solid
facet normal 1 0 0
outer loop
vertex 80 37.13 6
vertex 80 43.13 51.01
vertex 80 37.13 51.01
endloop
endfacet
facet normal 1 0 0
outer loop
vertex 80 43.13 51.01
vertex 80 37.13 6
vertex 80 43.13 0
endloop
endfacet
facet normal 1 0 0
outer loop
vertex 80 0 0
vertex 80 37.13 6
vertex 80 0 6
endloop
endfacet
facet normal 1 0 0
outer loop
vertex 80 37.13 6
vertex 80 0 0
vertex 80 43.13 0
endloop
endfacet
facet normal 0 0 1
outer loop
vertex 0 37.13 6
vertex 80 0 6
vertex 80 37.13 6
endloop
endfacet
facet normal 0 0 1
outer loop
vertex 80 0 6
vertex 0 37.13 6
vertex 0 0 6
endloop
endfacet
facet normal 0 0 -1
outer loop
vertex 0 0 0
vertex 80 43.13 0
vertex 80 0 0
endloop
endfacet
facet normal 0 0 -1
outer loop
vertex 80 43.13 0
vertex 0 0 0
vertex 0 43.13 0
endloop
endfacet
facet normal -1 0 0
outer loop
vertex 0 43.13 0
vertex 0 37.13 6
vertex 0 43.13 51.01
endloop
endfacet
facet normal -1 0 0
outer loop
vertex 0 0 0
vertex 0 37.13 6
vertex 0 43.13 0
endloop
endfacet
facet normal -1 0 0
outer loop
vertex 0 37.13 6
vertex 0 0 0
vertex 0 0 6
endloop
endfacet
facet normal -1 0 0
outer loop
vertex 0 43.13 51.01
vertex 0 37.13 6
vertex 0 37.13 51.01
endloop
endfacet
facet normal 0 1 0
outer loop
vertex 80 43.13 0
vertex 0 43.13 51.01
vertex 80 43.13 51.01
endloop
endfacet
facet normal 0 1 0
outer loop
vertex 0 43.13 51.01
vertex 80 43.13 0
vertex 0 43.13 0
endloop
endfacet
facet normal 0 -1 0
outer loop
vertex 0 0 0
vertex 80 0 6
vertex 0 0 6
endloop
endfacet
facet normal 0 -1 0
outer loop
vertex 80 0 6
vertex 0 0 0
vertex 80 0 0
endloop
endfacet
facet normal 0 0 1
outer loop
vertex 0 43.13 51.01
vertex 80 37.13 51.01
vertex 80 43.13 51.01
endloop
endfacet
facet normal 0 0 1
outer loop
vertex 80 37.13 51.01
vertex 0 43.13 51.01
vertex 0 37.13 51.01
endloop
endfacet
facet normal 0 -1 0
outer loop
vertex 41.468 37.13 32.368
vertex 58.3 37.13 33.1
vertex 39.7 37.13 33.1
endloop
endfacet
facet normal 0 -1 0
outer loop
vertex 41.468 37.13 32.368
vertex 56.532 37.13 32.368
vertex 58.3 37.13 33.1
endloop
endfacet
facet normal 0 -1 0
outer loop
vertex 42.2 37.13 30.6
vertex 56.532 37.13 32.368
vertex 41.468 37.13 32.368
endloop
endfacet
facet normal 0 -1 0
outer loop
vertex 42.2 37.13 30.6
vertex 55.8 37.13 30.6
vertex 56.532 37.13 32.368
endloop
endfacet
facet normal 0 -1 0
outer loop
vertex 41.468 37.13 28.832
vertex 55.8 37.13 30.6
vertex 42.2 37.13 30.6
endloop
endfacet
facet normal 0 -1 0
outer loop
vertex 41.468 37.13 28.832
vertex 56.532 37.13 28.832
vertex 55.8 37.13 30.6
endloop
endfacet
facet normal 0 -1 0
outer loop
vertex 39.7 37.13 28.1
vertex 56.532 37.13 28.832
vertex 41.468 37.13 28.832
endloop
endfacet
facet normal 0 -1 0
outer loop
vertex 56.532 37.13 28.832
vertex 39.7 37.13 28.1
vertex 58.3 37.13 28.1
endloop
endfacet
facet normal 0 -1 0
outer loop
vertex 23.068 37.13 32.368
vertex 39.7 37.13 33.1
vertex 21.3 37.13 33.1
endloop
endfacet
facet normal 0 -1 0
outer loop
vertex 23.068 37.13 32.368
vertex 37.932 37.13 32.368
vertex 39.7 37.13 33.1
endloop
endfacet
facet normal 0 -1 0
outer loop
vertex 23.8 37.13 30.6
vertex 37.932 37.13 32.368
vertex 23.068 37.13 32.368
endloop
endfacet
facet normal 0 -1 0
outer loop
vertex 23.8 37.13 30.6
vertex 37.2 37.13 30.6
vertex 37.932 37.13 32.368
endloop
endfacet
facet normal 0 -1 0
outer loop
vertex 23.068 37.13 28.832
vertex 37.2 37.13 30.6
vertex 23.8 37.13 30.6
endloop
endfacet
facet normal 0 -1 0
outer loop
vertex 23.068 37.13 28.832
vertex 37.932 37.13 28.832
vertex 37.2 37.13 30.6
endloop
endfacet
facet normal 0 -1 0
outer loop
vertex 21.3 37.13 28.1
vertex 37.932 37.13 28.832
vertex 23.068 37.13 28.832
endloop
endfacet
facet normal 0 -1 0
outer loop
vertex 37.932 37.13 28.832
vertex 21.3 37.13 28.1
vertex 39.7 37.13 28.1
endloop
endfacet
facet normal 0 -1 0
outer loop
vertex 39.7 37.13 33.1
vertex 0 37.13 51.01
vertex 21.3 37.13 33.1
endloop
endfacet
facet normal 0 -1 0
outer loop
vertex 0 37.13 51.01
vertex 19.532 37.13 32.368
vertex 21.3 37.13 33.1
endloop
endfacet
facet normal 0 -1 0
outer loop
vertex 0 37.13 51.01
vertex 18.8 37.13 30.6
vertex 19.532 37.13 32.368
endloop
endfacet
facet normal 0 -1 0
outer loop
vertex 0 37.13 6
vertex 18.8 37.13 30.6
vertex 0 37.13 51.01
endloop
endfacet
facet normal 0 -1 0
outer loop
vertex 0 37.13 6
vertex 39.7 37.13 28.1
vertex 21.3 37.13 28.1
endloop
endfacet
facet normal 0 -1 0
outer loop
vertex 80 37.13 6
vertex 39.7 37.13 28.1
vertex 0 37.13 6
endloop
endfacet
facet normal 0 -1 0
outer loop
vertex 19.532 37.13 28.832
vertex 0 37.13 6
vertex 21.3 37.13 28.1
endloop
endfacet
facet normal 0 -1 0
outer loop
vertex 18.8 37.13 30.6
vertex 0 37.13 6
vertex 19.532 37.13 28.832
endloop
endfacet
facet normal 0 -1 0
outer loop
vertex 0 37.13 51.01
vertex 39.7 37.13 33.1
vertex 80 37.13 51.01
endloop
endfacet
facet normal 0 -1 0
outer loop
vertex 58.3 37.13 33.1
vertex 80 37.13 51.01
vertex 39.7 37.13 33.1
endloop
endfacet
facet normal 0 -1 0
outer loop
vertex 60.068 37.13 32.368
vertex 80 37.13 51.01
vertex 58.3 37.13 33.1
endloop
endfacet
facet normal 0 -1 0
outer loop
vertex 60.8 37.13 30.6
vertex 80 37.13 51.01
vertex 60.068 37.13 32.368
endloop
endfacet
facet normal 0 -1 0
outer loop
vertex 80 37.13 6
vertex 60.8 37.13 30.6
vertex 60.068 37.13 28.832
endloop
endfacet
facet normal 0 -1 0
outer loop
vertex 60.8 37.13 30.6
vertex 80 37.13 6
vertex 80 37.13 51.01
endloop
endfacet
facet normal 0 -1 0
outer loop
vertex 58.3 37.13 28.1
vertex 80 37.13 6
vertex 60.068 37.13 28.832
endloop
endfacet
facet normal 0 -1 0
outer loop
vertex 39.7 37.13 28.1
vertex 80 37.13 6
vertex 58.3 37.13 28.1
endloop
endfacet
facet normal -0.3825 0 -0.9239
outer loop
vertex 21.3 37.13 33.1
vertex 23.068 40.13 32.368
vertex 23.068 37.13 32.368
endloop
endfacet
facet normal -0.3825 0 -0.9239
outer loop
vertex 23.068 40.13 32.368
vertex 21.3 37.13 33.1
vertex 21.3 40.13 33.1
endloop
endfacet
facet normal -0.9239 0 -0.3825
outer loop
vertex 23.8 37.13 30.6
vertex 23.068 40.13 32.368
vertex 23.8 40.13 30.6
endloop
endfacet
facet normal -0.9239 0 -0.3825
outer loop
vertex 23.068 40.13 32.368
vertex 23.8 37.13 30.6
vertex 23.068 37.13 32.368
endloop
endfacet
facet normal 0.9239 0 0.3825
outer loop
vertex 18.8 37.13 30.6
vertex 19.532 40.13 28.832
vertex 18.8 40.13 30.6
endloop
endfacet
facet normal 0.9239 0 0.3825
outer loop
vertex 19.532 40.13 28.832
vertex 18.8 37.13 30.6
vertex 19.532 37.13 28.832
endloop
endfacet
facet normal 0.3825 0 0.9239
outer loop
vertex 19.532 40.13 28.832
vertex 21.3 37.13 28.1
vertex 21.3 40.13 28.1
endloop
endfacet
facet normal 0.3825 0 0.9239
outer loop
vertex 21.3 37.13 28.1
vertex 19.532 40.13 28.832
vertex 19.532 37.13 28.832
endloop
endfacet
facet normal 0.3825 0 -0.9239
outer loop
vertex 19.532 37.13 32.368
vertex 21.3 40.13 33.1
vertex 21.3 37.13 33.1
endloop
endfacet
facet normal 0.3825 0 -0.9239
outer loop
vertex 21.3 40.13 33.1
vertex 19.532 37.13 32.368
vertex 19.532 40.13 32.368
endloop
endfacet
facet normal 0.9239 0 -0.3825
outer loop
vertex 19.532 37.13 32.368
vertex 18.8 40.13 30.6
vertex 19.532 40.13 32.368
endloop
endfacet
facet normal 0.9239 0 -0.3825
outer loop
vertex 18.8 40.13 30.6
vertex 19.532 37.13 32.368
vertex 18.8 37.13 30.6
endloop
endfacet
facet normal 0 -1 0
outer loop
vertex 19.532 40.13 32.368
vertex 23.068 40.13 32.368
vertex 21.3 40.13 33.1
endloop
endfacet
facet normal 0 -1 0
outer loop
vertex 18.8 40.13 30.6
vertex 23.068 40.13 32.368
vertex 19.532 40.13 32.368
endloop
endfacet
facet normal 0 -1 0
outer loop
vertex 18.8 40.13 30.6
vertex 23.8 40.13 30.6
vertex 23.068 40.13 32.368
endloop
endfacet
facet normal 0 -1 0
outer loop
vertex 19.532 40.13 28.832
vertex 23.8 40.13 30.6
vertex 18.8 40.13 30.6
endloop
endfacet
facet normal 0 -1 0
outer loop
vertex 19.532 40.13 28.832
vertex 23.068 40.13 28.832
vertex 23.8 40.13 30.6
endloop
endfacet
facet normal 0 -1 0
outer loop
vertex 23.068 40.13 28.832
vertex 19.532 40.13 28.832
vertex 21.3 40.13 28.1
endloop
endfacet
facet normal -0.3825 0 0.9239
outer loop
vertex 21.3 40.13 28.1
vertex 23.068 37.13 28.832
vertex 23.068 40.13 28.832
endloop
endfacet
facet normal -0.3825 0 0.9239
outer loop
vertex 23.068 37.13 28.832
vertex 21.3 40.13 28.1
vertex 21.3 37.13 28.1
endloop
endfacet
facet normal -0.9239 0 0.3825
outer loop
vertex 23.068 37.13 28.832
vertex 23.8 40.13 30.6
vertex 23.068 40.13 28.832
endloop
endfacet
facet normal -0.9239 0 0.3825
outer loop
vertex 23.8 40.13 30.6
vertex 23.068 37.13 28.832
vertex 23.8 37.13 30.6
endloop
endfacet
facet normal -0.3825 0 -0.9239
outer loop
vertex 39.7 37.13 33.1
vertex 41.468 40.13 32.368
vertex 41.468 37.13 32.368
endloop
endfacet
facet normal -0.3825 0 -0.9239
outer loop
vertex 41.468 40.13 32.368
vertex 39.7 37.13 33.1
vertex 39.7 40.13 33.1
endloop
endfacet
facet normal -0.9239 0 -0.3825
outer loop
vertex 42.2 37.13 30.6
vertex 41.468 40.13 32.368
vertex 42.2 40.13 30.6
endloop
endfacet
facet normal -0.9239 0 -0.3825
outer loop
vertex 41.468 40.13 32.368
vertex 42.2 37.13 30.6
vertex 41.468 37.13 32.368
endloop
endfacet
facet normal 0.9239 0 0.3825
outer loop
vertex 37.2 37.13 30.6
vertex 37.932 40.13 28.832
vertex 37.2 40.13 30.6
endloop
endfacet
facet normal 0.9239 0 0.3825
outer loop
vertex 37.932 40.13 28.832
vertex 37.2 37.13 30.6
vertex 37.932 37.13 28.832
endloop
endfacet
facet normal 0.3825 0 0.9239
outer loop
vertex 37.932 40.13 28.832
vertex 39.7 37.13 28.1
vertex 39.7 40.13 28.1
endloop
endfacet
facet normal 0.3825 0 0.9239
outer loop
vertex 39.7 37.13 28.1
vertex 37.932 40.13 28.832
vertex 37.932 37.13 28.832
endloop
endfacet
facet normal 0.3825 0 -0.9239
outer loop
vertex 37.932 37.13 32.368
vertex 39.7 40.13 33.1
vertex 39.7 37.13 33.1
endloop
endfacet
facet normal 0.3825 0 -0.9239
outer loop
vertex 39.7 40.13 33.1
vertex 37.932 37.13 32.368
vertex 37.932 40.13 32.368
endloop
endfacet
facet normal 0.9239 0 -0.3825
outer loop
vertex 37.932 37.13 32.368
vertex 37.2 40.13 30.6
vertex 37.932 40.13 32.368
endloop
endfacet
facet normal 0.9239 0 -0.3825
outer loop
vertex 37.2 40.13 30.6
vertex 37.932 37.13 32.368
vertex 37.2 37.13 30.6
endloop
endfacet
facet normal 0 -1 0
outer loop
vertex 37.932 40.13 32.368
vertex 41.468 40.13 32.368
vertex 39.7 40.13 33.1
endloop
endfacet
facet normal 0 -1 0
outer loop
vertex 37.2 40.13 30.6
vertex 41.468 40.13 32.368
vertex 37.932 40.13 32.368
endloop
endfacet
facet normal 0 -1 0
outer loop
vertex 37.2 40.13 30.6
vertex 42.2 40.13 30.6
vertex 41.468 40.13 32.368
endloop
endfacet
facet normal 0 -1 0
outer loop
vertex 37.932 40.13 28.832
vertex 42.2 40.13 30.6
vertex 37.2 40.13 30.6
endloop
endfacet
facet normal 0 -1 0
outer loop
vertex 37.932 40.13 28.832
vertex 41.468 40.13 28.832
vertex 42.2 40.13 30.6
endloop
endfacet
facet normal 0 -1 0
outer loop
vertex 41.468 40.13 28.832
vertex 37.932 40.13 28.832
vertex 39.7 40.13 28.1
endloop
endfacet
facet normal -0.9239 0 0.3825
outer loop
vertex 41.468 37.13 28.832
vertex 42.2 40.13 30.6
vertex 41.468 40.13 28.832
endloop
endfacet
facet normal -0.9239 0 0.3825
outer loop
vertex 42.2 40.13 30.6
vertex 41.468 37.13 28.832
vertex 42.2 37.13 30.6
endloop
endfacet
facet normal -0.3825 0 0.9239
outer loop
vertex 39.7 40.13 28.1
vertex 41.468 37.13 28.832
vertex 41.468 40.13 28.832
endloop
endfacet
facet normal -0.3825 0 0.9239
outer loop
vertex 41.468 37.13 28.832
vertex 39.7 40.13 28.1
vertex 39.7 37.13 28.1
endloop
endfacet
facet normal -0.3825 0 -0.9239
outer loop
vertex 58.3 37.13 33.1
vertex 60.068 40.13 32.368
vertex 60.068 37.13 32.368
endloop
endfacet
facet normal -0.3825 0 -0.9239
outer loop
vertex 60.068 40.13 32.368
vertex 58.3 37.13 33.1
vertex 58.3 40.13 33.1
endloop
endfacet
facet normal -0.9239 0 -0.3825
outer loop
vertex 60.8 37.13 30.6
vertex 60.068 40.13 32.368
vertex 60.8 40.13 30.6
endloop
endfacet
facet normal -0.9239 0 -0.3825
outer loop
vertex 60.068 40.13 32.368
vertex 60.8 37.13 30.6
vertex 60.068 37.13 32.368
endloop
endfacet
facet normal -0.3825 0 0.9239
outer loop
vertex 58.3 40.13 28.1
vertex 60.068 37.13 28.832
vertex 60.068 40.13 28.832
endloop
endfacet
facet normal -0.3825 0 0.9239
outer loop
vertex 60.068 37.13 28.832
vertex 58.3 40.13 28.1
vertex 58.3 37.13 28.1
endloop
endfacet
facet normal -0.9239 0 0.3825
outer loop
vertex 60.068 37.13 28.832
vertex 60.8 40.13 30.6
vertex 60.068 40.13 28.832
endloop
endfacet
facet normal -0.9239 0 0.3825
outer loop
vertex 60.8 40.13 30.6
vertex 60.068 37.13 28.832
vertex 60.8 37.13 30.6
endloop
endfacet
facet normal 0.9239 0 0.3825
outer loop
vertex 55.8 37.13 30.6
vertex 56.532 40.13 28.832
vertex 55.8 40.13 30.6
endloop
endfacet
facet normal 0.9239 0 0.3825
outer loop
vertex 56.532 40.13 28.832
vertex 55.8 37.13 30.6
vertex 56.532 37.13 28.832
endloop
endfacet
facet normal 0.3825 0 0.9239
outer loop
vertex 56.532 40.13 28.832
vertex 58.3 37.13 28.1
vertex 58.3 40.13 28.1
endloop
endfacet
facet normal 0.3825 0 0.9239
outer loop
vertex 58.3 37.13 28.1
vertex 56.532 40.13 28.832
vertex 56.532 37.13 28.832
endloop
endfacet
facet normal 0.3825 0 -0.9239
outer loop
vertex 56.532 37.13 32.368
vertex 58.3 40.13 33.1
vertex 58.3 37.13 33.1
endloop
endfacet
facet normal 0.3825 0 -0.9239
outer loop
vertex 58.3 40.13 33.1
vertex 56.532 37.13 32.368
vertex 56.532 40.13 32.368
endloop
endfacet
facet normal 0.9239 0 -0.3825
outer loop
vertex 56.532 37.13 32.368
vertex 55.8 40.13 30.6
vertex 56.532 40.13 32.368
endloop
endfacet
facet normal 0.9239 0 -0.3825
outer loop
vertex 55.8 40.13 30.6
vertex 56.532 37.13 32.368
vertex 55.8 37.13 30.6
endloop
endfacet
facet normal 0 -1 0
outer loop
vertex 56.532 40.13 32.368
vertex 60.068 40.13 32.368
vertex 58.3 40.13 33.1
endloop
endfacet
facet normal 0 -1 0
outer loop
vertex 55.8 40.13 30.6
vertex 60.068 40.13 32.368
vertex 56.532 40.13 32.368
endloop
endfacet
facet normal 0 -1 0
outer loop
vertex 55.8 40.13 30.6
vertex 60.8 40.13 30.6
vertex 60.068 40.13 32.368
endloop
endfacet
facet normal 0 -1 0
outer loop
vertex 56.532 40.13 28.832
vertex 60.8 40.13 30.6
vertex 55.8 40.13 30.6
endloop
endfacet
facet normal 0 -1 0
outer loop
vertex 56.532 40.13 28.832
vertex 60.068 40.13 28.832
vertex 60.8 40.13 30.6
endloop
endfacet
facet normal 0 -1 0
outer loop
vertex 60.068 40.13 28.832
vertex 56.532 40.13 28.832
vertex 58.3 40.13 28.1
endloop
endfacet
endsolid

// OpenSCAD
/* doodle-meta {"version":1,"parameters":{"width":{"label":"Overall width","description":"Changes the body width","unit":"mm","feature":"body_width"},"depth":{"label":"Overall depth","description":"Changes the body depth","unit":"mm","feature":"body_depth"},"height":{"label":"Overall height","description":"Changes the body height","unit":"mm","feature":"body_height"},"base_thickness":{"label":"Base thickness","description":"Thickness of the horizontal base flange","unit":"mm","feature":"base_thickness"},"wall_thickness":{"label":"Wall thickness","description":"Thickness of the vertical wall","unit":"mm","feature":"wall_thickness"},"hole_diameter":{"label":"Hole diameter","description":"Diameter of the three holes in the wall","unit":"mm","feature":"holes"},"hole_height":{"label":"Hole height","description":"Height of the hole centers from the build plate","unit":"mm","feature":"holes"}},"features":{"body_width":{"kind":"dimension","axis":"x","label":"Overall width"},"body_depth":{"kind":"dimension","axis":"y","label":"Overall depth"},"body_height":{"kind":"dimension","axis":"z","label":"Overall height"},"base_thickness":{"kind":"dimension","axis":"z","label":"Base thickness"},"wall_thickness":{"kind":"dimension","axis":"x","label":"Wall thickness"},"holes":{"kind":"region","label":"Wall holes","min":[{"parameter":"hole_x1","scale":1,"offset":-5},{"parameter":"wall_thickness","scale":1,"offset":-1},{"parameter":"hole_height","scale":1,"offset":-5}],"max":[{"parameter":"hole_x3","scale":1,"offset":5},{"parameter":"wall_thickness","scale":1,"offset":1},{"parameter":"hole_height","scale":1,"offset":5}]}}} */

// Top-level editable parameters (derived sizes from measured ink spans)
width = 80.0;
depth = 43.13;
height = 51.01;
base_thickness = 6.0;
wall_thickness = 6.0;
hole_diameter = 5.0;
hole_height = 30.6;

// Derived (not user-editable)
hole_x1 = 21.3;
hole_x2 = 39.7;
hole_x3 = 58.3;
eps = 0.01;

module l_bracket_body() {
    // Horizontal base plate
    cube([width, depth, base_thickness]);
    // Vertical wall at the back (Y = depth - wall_thickness .. depth)
    translate([0, depth - wall_thickness, 0])
        cube([width, wall_thickness, height]);
}

module hole_cutter(x) {
    // Through-cut along Y (perpendicular to the wall face)
    // Wall spans Y from (depth - wall_thickness) to depth
    // Cylinder axis must be along Y, spanning from before the front face to after the back face
    translate([x, depth - wall_thickness - eps, hole_height])
        rotate([90, 0, 0])
            cylinder(h = wall_thickness + 2 * eps, d = hole_diameter, center = true);
}

difference() {
    l_bracket_body();
    hole_cutter(hole_x1);
    hole_cutter(hole_x2);
    hole_cutter(hole_x3);
}
